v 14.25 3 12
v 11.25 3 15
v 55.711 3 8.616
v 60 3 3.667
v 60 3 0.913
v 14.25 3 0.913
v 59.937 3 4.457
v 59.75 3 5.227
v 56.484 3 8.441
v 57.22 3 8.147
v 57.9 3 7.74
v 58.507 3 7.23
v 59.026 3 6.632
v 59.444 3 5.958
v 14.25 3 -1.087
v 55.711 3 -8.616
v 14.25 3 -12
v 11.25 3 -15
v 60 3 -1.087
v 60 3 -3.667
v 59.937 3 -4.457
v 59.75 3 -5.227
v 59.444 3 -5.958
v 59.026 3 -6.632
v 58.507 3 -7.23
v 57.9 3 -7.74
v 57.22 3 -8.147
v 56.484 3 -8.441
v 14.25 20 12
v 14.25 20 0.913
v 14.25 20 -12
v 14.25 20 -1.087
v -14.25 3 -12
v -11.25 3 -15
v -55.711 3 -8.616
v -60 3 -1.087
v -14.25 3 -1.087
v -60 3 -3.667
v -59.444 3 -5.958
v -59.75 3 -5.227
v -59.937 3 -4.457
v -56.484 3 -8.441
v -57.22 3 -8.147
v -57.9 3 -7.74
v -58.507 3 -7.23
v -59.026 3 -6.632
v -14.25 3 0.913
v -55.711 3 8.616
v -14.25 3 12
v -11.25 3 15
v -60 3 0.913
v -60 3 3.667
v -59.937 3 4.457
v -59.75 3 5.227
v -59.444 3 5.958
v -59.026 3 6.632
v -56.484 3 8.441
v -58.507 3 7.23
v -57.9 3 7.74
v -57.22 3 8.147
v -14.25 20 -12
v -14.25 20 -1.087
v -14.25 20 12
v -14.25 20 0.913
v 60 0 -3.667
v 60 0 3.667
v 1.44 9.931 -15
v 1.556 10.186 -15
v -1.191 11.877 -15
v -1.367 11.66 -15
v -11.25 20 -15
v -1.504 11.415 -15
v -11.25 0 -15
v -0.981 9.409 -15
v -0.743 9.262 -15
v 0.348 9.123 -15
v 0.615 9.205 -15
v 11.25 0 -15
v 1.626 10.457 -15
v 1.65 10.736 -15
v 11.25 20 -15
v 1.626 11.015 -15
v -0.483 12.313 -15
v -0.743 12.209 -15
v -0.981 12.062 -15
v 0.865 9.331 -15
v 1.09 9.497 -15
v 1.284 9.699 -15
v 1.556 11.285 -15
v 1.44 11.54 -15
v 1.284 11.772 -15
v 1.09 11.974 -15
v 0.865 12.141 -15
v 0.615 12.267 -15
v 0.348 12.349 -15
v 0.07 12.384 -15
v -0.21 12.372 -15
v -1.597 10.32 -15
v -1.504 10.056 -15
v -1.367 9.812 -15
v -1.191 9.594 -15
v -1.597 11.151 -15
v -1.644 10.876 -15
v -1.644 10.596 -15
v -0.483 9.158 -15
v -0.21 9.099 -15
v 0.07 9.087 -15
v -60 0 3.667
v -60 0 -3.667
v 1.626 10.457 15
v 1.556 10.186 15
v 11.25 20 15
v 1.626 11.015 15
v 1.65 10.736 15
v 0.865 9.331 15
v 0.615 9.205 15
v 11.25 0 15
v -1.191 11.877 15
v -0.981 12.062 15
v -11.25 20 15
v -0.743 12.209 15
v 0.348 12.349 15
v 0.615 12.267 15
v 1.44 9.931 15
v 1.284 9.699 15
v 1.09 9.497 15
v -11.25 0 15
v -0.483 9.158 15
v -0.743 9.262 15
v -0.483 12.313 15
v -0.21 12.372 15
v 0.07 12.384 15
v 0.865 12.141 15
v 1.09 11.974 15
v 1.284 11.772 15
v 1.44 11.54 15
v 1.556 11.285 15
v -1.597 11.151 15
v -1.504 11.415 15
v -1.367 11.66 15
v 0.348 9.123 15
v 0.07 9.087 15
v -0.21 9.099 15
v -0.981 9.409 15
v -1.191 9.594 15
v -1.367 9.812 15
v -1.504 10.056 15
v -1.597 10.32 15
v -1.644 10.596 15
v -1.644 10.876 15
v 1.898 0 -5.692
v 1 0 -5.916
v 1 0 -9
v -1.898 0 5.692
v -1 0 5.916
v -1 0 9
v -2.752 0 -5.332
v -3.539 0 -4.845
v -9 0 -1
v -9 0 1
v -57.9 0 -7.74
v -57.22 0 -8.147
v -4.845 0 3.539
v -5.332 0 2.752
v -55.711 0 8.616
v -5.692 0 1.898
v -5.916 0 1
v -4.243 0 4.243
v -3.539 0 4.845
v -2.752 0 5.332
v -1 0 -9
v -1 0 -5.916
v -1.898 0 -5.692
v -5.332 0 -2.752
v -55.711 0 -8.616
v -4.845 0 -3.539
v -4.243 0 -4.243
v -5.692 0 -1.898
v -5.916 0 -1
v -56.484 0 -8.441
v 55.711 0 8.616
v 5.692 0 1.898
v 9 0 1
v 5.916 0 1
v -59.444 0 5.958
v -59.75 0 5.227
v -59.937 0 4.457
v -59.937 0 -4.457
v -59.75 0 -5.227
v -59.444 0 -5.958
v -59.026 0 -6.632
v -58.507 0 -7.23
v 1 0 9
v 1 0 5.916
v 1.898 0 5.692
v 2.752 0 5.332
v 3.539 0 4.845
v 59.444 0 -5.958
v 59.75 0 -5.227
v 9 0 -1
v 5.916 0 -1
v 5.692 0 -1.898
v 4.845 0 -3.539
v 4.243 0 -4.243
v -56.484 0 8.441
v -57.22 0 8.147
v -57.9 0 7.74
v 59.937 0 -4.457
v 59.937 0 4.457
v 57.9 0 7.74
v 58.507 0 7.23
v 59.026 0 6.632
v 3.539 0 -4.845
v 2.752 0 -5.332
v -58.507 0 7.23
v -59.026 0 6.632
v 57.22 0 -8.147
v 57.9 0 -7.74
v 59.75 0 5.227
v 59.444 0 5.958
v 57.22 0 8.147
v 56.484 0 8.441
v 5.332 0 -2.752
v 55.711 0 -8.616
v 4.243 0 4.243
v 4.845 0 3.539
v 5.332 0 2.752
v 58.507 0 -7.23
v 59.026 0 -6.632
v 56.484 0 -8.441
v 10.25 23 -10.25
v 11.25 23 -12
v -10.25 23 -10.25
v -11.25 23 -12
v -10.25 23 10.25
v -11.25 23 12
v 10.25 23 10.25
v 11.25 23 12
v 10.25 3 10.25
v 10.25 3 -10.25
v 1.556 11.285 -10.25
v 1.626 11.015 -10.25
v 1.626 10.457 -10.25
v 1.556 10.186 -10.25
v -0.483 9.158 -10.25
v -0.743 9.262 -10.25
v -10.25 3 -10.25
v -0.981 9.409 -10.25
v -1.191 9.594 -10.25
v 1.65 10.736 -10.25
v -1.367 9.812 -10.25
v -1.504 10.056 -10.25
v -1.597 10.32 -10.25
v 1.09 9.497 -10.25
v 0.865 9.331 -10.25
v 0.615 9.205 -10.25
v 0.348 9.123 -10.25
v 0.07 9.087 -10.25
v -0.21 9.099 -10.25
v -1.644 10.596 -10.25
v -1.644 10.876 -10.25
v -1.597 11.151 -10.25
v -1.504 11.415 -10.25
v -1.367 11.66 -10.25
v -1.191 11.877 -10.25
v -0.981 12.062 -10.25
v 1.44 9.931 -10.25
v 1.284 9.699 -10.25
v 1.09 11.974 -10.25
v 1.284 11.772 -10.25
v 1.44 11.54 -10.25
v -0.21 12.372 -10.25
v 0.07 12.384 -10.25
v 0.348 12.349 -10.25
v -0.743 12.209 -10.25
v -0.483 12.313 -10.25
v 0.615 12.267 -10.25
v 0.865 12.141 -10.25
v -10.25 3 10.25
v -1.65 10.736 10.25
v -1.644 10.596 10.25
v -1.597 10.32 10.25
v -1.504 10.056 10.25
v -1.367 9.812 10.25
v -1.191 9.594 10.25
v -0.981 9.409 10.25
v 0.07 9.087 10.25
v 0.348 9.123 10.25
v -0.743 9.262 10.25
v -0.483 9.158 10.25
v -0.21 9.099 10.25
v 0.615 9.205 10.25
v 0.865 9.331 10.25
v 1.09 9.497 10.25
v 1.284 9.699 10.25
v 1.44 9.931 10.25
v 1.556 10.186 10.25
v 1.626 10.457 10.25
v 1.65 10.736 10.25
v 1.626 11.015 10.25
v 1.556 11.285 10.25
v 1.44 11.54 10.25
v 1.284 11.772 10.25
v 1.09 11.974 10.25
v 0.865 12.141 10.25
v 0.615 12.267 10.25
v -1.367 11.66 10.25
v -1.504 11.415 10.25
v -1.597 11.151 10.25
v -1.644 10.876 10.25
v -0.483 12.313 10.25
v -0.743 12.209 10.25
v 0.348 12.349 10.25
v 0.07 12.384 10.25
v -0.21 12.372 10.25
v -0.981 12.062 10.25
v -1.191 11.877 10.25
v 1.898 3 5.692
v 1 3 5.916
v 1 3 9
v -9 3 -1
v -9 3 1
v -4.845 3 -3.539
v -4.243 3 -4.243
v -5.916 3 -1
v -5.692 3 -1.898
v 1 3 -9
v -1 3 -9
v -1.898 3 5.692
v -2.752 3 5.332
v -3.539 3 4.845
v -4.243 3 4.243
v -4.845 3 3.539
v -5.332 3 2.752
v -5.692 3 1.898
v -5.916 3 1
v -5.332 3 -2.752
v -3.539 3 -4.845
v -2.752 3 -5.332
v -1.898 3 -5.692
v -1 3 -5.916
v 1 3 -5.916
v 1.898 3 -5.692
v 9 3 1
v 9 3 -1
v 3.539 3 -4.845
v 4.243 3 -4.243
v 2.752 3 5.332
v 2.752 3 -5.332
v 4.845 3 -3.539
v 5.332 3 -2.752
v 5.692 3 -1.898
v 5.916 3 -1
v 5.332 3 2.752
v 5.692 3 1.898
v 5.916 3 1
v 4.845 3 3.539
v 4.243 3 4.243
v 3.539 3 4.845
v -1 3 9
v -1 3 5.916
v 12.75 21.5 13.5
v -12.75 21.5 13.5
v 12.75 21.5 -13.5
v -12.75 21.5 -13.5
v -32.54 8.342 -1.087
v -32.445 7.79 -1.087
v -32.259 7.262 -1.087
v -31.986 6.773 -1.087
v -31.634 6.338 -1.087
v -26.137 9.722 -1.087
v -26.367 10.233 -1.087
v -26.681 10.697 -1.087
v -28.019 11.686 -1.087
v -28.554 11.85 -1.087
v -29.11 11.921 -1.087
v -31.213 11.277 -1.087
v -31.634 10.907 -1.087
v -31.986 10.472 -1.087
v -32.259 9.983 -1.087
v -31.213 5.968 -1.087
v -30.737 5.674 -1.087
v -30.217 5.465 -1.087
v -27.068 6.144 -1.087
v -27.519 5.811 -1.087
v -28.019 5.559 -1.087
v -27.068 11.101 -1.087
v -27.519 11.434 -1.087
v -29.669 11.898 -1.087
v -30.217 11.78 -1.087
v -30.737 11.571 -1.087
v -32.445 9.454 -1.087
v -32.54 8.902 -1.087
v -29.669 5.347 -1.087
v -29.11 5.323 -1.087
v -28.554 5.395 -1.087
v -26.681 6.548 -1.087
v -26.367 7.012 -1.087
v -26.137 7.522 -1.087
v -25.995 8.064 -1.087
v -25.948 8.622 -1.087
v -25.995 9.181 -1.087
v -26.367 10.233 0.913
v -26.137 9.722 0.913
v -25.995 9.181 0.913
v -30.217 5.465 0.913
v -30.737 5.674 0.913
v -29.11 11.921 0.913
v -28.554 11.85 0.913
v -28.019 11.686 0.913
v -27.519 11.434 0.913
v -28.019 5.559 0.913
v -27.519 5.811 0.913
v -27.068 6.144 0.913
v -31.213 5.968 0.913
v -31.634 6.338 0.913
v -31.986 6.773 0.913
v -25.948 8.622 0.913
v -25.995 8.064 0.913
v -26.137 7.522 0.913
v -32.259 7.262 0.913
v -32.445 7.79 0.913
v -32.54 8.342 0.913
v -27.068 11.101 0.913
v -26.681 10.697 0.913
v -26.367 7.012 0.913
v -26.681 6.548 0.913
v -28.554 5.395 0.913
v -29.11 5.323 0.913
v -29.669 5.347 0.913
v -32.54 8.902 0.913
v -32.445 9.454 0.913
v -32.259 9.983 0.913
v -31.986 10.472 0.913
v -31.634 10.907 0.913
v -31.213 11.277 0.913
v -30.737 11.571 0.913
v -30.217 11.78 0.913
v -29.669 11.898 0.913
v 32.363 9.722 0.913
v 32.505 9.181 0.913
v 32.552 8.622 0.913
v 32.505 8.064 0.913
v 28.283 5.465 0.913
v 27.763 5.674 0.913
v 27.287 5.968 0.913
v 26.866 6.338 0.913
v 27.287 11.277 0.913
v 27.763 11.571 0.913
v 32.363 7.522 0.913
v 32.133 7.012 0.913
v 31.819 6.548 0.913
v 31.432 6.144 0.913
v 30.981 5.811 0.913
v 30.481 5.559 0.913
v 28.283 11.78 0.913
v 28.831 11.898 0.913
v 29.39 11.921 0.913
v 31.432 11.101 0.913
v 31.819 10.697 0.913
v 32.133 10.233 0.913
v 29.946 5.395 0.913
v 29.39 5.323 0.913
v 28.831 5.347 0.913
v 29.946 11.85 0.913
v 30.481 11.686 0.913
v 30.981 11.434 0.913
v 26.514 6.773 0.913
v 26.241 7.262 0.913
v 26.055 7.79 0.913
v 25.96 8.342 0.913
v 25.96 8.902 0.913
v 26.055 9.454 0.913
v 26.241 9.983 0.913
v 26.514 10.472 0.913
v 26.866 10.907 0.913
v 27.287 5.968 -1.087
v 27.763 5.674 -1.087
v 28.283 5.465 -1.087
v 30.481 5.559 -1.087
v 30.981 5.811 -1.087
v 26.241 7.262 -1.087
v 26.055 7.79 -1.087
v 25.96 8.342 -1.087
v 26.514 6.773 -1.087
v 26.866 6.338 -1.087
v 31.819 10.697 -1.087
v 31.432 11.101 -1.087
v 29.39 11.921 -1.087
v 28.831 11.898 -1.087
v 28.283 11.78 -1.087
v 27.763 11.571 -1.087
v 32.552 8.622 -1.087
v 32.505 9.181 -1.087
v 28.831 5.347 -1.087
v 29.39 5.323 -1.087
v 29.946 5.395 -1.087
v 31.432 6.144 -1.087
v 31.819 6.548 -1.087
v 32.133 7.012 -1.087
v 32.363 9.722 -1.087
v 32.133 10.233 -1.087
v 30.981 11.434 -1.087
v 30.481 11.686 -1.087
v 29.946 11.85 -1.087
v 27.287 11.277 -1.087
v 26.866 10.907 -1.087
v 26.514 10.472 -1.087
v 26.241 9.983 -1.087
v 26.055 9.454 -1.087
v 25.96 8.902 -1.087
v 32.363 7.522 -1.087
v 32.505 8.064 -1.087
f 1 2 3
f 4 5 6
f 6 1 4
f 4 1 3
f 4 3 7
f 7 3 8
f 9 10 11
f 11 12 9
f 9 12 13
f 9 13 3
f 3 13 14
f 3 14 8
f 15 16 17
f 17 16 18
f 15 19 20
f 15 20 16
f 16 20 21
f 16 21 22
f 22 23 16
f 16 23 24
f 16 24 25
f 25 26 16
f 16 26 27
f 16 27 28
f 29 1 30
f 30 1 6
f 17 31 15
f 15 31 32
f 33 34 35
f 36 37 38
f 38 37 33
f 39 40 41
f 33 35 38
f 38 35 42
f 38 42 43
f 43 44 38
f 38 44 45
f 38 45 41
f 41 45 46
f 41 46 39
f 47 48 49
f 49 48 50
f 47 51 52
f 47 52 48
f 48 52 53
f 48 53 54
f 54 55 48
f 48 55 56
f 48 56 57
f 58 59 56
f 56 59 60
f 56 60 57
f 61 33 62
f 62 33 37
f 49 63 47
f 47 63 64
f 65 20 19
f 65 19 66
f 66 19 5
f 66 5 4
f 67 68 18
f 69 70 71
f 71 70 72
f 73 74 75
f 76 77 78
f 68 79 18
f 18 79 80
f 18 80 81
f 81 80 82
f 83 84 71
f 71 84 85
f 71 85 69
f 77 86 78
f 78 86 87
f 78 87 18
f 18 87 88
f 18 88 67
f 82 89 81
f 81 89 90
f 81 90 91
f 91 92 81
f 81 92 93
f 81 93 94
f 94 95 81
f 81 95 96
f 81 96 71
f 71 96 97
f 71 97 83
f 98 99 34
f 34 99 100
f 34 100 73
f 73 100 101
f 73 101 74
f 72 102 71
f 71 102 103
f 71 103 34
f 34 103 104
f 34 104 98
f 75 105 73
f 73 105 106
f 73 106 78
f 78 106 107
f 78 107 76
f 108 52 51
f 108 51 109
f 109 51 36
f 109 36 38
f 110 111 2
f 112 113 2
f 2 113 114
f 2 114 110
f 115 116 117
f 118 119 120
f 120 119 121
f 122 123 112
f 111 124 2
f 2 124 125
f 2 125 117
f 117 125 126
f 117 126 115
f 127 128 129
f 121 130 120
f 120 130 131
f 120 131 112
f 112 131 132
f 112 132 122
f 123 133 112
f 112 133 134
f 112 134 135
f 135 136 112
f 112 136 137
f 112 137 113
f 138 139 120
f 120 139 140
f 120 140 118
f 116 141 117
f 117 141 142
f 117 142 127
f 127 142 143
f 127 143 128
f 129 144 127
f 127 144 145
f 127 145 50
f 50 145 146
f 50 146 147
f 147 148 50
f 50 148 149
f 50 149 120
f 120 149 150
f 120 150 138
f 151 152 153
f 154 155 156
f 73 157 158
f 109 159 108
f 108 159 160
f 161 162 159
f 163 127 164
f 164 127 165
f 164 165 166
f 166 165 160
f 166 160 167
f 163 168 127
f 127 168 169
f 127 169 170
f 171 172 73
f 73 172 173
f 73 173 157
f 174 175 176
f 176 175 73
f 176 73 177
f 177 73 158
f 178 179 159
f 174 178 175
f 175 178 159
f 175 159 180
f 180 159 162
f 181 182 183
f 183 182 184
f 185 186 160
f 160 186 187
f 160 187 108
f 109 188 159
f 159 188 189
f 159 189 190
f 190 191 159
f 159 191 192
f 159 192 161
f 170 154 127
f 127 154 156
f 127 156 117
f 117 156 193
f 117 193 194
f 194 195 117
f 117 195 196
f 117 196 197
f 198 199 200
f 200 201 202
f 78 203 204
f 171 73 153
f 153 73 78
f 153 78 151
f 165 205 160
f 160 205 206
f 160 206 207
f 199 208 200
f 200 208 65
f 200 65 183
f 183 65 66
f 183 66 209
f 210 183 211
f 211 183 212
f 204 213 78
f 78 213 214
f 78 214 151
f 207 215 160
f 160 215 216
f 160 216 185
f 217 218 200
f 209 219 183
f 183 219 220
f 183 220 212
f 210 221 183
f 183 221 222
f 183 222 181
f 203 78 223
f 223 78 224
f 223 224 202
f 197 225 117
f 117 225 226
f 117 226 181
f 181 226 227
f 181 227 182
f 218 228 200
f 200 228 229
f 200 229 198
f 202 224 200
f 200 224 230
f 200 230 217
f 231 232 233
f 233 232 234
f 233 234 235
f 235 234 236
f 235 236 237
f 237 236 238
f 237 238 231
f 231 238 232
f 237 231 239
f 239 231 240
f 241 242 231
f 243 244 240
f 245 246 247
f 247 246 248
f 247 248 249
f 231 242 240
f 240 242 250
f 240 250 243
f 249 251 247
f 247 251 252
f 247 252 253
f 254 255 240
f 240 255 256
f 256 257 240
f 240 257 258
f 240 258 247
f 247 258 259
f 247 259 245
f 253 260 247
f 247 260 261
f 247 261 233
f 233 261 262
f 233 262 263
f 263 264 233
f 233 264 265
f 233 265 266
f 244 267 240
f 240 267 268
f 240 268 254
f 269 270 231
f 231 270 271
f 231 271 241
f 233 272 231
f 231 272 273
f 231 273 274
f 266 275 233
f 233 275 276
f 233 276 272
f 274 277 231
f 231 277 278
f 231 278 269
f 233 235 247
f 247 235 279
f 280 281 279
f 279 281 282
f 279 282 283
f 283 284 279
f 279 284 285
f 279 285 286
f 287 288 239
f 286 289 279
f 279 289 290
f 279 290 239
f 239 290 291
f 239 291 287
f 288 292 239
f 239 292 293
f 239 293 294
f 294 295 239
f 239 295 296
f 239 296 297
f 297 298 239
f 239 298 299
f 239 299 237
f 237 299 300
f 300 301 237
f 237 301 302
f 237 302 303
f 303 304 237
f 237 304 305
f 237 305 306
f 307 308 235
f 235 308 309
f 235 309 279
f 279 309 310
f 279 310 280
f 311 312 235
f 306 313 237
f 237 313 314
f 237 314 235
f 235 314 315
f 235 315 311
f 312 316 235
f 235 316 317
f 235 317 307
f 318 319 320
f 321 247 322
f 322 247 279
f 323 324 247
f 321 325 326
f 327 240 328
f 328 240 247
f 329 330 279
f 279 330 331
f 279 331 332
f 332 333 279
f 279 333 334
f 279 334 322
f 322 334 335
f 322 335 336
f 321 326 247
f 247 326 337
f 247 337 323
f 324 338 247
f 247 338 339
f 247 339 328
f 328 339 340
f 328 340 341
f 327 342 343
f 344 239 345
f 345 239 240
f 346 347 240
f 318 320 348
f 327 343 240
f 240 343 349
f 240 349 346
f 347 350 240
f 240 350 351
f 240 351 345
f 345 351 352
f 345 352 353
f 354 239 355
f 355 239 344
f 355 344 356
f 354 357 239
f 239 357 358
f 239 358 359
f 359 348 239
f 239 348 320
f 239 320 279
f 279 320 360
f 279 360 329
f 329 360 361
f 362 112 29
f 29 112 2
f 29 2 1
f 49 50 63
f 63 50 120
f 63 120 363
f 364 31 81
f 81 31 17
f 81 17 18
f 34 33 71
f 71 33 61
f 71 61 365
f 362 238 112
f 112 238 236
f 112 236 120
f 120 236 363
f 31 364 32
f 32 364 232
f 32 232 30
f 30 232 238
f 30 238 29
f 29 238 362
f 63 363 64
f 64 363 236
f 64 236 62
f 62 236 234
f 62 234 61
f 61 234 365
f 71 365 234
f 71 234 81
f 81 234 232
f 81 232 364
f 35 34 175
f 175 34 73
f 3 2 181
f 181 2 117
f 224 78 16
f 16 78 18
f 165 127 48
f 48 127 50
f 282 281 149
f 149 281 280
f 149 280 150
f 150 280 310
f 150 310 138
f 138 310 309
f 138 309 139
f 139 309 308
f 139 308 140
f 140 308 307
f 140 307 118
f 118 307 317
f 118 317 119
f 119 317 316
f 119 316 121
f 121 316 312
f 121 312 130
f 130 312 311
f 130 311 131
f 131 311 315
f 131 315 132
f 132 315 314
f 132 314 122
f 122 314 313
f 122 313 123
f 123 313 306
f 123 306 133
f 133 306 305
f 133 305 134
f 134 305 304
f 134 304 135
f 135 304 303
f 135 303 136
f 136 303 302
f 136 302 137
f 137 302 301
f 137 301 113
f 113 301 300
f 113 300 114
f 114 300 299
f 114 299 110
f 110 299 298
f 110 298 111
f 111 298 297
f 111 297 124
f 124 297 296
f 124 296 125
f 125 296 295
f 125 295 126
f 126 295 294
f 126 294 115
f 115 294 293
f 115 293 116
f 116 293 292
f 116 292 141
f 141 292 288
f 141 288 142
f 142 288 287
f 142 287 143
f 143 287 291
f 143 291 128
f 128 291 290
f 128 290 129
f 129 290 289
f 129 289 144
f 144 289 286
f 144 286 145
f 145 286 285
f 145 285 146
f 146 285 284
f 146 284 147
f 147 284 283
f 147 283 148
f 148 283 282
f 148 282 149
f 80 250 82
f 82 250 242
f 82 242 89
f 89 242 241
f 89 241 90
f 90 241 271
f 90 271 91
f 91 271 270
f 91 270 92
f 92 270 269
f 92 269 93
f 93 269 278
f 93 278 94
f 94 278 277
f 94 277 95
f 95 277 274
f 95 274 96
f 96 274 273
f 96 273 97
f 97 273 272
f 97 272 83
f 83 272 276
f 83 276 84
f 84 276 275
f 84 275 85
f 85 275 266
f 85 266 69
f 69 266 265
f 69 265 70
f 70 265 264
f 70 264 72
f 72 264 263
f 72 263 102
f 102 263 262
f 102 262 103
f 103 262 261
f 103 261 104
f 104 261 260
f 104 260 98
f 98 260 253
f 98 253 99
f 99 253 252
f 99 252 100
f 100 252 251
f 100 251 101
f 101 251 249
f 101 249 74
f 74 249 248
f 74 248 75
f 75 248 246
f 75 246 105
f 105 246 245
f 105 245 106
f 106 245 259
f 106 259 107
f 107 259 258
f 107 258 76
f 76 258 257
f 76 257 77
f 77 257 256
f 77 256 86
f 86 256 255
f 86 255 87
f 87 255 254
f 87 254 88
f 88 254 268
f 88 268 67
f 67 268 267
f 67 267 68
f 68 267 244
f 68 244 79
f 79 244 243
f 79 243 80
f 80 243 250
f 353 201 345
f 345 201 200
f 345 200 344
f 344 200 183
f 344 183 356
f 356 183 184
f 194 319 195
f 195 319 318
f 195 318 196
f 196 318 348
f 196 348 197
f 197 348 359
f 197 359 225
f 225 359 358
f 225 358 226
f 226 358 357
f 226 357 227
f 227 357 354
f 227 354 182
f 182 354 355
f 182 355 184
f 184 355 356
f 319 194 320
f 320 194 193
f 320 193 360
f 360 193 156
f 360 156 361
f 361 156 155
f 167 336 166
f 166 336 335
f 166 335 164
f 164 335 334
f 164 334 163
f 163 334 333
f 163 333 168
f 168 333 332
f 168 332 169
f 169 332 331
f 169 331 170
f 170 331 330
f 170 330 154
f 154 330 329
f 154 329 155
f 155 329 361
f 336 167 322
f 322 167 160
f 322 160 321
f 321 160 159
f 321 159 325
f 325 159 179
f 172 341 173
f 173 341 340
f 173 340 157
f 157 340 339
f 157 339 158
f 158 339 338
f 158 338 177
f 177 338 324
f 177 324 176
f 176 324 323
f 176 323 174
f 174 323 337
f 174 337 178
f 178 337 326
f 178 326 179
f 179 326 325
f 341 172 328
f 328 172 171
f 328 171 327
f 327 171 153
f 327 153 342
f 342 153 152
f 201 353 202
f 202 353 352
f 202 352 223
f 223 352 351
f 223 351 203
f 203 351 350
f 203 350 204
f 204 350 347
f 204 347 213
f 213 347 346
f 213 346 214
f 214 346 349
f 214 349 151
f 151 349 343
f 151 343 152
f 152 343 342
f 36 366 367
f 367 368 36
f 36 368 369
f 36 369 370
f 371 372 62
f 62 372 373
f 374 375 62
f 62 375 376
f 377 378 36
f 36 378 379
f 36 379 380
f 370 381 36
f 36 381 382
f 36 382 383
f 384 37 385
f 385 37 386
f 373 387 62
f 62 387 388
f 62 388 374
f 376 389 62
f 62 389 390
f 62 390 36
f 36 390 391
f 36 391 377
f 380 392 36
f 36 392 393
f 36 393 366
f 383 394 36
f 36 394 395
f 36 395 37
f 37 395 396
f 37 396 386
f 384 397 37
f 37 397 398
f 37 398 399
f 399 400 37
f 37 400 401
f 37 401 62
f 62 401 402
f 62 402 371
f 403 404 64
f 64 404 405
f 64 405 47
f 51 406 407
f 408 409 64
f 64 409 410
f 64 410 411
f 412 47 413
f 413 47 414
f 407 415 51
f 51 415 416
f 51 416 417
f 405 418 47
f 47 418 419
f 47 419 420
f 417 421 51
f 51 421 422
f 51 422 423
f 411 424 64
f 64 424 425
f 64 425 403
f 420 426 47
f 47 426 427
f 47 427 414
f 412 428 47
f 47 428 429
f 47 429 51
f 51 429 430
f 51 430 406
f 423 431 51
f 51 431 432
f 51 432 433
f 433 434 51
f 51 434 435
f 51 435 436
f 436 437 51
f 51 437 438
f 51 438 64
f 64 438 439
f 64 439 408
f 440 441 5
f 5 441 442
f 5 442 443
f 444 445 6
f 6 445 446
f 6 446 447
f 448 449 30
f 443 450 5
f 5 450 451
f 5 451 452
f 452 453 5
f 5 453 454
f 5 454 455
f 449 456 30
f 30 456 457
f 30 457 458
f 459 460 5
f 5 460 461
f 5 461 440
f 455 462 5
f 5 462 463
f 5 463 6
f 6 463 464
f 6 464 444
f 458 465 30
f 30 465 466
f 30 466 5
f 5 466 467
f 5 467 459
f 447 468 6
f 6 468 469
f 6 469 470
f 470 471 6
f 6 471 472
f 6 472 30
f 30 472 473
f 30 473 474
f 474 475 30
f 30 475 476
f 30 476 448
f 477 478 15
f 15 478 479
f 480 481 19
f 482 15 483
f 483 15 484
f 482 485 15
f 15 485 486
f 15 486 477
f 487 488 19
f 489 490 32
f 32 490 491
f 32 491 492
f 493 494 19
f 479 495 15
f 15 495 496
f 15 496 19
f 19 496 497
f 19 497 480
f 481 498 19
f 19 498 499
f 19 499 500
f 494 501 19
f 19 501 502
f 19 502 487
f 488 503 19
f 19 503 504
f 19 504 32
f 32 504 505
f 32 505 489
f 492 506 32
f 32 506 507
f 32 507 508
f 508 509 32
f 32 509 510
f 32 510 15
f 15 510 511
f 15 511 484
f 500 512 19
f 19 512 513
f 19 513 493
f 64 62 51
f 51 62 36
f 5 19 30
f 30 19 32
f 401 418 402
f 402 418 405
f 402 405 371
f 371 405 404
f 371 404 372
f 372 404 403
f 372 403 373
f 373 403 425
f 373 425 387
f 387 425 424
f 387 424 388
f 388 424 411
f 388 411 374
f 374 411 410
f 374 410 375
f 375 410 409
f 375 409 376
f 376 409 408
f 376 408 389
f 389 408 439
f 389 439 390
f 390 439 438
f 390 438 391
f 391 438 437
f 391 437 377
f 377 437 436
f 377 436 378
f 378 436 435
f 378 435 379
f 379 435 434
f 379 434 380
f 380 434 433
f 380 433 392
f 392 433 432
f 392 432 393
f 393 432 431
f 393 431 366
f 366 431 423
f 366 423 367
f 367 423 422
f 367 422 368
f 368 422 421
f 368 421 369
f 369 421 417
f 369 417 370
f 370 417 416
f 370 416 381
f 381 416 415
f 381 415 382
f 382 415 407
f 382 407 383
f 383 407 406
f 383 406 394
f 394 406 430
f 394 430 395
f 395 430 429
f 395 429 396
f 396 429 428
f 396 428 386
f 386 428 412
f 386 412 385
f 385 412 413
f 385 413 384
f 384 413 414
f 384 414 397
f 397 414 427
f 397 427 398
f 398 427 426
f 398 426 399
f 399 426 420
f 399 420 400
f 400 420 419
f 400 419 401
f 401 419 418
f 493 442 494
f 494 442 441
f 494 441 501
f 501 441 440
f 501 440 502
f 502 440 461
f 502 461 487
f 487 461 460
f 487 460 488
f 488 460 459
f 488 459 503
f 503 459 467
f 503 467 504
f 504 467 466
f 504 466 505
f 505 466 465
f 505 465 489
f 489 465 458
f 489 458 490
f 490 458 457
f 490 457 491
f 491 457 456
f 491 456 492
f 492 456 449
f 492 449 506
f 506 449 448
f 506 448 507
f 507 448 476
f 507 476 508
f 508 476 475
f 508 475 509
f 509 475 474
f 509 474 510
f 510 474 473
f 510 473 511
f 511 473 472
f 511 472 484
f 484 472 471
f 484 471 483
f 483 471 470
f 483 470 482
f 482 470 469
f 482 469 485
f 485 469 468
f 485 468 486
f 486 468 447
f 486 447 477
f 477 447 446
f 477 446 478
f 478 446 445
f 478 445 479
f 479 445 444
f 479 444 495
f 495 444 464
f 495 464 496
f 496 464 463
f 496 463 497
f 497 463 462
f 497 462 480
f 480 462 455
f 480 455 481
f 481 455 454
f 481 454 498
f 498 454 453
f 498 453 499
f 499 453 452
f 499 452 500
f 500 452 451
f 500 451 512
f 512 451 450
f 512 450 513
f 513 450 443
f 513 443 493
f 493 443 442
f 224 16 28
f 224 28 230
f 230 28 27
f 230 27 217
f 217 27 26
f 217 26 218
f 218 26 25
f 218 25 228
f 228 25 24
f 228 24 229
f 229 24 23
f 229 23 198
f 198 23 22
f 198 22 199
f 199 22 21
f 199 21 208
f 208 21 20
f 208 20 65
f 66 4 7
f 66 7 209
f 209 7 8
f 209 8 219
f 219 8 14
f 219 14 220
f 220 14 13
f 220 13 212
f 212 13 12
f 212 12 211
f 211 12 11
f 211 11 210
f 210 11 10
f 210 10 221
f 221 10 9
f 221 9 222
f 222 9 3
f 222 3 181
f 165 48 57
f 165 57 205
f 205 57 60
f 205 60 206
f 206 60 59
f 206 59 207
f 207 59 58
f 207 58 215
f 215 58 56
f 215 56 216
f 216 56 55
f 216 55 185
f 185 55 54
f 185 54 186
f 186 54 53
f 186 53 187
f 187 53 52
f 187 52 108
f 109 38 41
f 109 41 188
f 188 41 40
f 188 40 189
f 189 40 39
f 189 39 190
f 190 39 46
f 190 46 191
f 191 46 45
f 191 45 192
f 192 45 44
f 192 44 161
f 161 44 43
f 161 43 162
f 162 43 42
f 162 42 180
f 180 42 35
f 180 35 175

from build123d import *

# Parameters (mm, degrees)
SKETCH1_W           = 120
SKETCH1_H           = 30
BOSS_EXTRUDE1_DEPTH = 3
SKETCH2_W           = 28.5
SKETCH2_H           = 30
SKETCH2_W_2         = 20.5
SKETCH2_H_2         = 20.5
BOSS_EXTRUDE2_DEPTH = 20
CHAMFER1_SIZE       = 3
CHAMFER2_SIZE       = 3
CUT_EXTRUDE1_DEPTH  = 20
SKETCH4_R           = 1.65
CUT_EXTRUDE2_DEPTH  = 40
CUT_EXTRUDE3_DEPTH  = 40
SKETCH6_W           = 45.75
SKETCH6_H           = 2
BOSS_EXTRUDE3_DEPTH = 17
CUT_EXTRUDE5_DEPTH  = 17
SKETCH8_R           = 3.302
CUT_EXTRUDE6_DEPTH  = 17
FILLET1_R           = 5


with BuildPart() as part:
    # Sketch1 → Boss-Extrude1 (new body)
    with BuildSketch(Plane(origin=(0, 0, 0), x_dir=(1, 0, 0), z_dir=(0, 1, 0))):
        Rectangle(SKETCH1_W, SKETCH1_H)
    extrude(amount=BOSS_EXTRUDE1_DEPTH)

    # Sketch2 → Boss-Extrude2 (add)
    with BuildSketch(Plane(origin=(0, 3, 0), x_dir=(1, 0, 0), z_dir=(0, 1, 0))):
        Rectangle(SKETCH2_W, SKETCH2_H)
        Rectangle(SKETCH2_W_2, SKETCH2_H_2, mode=Mode.SUBTRACT)
    extrude(amount=BOSS_EXTRUDE2_DEPTH)

    # Chamfer1
    chamfer1_edges = [part.edges().sort_by_distance(p)[0] for p in [
        (14.25, 13, 15),
        (14.25, 13, -15),
        (-14.25, 13, -15),
        (-14.25, 13, 15),
    ]]
    chamfer(chamfer1_edges, length=CHAMFER1_SIZE)

    # Chamfer2
    # the kernel refuses this chamfer: 3 mm, written as the material it takes off along each edge
    with BuildSketch(Plane(origin=(18.965048964, 23, -15), x_dir=(0, -0.9996219169112968, -0.02749587661058619), z_dir=(-1, 0, 0)), Plane(origin=(-18.965048964, 23, 15), x_dir=(0, -0.9996219169112968, 0.02749587661058619), z_dir=(1, 0, 0))) as chamfer2_piece_1:
        Polygon((CHAMFER2_SIZE * 0.999621916911, CHAMFER2_SIZE * 0.0274958766106), (-CHAMFER2_SIZE * 0.0274958766106, CHAMFER2_SIZE * 0.999621916911), (0, 0), align=None)
    extrude(amount=37.930097928, mode=Mode.SUBTRACT)
    with BuildSketch(Plane(origin=(14.25, 23, 19.715048964), x_dir=(0.02749587661058619, -0.9996219169112968, 0), z_dir=(0, 0, -1)), Plane(origin=(-14.25, 23, -19.715048964), x_dir=(-0.02749587661058619, -0.9996219169112968, 0), z_dir=(0, 0, 1))) as chamfer2_piece_2:
        Polygon((CHAMFER2_SIZE * 0.999621916911, CHAMFER2_SIZE * 0.0274958766106), (-CHAMFER2_SIZE * 0.0274958766106, CHAMFER2_SIZE * 0.999621916911), (0, 0), align=None)
    extrude(amount=39.430097928, mode=Mode.SUBTRACT)

    # Sketch3 → Cut-Extrude1 (cut)
    with BuildSketch(Plane(origin=(0, 3, 0), x_dir=(1, 0, 0), z_dir=(0, 1, 0))):
        Polygon((-11.25, 15), (-60, 8), (-60, 15), align=None)
        Polygon((-11.25, -15), (-60, -8), (-60, -15), align=None)
        Polygon((11.25, 15), (60, 15), (60, 8), align=None)
        Polygon((11.25, -15), (60, -15), (60, -8), align=None)
    extrude(amount=-CUT_EXTRUDE1_DEPTH, mode=Mode.SUBTRACT)

    # Sketch4 → Cut-Extrude2 (cut)
    with BuildSketch(Plane.XY.offset(15)):
        with Locations((0, 10.735706987)):
            Circle(SKETCH4_R)
    extrude(amount=-CUT_EXTRUDE2_DEPTH, mode=Mode.SUBTRACT)

    # Sketch5 → Cut-Extrude3 (cut)
    with BuildSketch(Plane(origin=(0, 3, 0), x_dir=(1, 0, 0), z_dir=(0, 1, 0))):
        with BuildLine():
            Line((-9, -1), (-5.916079783, -1))
            ThreePointArc((-5.916079783, -1), (-4.242640687, -4.242640687), (-1, -5.916079783))
            Line((-1, -5.916079783), (-1, -9))
            Line((-1, -9), (1, -9))
            Line((1, -9), (1, -5.916079783))
            ThreePointArc((1, -5.916079783), (4.242640687, -4.242640687), (5.916079783, -1))
            Line((5.916079783, -1), (9, -1))
            Line((9, -1), (9, 1))
            Line((9, 1), (5.916079783, 1))
            ThreePointArc((5.916079783, 1), (4.242640687, 4.242640687), (1, 5.916079783))
            Line((1, 5.916079783), (1, 9))
            Line((1, 9), (-1, 9))
            Line((-1, 9), (-1, 5.916079783))
            ThreePointArc((-1, 5.916079783), (-4.242640687, 4.242640687), (-5.916079783, 1))
            Line((-5.916079783, 1), (-9, 1))
            Line((-9, 1), (-9, -1))
        make_face()
    extrude(amount=-CUT_EXTRUDE3_DEPTH, mode=Mode.SUBTRACT)

    # Sketch6 → Boss-Extrude3 (add)
    with BuildSketch(Plane(origin=(0, 3, 0), x_dir=(1, 0, 0), z_dir=(0, 1, 0))):
        with Locations((-37.125, 0.087113991)):
            Rectangle(SKETCH6_W, SKETCH6_H)
        with Locations((37.125, 0.087113991)):
            Rectangle(SKETCH6_W, SKETCH6_H)
    extrude(amount=BOSS_EXTRUDE3_DEPTH)

    # Sketch7 → Cut-Extrude5 (cut)
    with BuildSketch(Plane.XY.offset(0.912886009)):
        Polygon((-14.25, 20), (-60, 3), (-66.007429388, 26.966086251), align=None)
        Polygon((14.25, 20), (60, 3), (71.057586423, 29.350453949), align=None)
    extrude(amount=-CUT_EXTRUDE5_DEPTH, mode=Mode.SUBTRACT)

    # Sketch8 → Cut-Extrude6 (cut)
    with BuildSketch(Plane.XY.offset(0.912886009)):
        with Locations((-29.25, 8.622465364)):
            Circle(SKETCH8_R)
        with Locations((29.25, 8.622465364)):
            Circle(SKETCH8_R)
    extrude(amount=-CUT_EXTRUDE6_DEPTH, mode=Mode.SUBTRACT)

    # Fillet1
    fillet1_edges = [part.edges().sort_by_distance(p)[0] for p in [
        (-60, 1.5, -8),
        (-60, 1.5, 8),
        (60, 1.5, -8),
        (60, 1.5, 8),
    ]]
    fillet(fillet1_edges, radius=FILLET1_R)


solid = part.part
